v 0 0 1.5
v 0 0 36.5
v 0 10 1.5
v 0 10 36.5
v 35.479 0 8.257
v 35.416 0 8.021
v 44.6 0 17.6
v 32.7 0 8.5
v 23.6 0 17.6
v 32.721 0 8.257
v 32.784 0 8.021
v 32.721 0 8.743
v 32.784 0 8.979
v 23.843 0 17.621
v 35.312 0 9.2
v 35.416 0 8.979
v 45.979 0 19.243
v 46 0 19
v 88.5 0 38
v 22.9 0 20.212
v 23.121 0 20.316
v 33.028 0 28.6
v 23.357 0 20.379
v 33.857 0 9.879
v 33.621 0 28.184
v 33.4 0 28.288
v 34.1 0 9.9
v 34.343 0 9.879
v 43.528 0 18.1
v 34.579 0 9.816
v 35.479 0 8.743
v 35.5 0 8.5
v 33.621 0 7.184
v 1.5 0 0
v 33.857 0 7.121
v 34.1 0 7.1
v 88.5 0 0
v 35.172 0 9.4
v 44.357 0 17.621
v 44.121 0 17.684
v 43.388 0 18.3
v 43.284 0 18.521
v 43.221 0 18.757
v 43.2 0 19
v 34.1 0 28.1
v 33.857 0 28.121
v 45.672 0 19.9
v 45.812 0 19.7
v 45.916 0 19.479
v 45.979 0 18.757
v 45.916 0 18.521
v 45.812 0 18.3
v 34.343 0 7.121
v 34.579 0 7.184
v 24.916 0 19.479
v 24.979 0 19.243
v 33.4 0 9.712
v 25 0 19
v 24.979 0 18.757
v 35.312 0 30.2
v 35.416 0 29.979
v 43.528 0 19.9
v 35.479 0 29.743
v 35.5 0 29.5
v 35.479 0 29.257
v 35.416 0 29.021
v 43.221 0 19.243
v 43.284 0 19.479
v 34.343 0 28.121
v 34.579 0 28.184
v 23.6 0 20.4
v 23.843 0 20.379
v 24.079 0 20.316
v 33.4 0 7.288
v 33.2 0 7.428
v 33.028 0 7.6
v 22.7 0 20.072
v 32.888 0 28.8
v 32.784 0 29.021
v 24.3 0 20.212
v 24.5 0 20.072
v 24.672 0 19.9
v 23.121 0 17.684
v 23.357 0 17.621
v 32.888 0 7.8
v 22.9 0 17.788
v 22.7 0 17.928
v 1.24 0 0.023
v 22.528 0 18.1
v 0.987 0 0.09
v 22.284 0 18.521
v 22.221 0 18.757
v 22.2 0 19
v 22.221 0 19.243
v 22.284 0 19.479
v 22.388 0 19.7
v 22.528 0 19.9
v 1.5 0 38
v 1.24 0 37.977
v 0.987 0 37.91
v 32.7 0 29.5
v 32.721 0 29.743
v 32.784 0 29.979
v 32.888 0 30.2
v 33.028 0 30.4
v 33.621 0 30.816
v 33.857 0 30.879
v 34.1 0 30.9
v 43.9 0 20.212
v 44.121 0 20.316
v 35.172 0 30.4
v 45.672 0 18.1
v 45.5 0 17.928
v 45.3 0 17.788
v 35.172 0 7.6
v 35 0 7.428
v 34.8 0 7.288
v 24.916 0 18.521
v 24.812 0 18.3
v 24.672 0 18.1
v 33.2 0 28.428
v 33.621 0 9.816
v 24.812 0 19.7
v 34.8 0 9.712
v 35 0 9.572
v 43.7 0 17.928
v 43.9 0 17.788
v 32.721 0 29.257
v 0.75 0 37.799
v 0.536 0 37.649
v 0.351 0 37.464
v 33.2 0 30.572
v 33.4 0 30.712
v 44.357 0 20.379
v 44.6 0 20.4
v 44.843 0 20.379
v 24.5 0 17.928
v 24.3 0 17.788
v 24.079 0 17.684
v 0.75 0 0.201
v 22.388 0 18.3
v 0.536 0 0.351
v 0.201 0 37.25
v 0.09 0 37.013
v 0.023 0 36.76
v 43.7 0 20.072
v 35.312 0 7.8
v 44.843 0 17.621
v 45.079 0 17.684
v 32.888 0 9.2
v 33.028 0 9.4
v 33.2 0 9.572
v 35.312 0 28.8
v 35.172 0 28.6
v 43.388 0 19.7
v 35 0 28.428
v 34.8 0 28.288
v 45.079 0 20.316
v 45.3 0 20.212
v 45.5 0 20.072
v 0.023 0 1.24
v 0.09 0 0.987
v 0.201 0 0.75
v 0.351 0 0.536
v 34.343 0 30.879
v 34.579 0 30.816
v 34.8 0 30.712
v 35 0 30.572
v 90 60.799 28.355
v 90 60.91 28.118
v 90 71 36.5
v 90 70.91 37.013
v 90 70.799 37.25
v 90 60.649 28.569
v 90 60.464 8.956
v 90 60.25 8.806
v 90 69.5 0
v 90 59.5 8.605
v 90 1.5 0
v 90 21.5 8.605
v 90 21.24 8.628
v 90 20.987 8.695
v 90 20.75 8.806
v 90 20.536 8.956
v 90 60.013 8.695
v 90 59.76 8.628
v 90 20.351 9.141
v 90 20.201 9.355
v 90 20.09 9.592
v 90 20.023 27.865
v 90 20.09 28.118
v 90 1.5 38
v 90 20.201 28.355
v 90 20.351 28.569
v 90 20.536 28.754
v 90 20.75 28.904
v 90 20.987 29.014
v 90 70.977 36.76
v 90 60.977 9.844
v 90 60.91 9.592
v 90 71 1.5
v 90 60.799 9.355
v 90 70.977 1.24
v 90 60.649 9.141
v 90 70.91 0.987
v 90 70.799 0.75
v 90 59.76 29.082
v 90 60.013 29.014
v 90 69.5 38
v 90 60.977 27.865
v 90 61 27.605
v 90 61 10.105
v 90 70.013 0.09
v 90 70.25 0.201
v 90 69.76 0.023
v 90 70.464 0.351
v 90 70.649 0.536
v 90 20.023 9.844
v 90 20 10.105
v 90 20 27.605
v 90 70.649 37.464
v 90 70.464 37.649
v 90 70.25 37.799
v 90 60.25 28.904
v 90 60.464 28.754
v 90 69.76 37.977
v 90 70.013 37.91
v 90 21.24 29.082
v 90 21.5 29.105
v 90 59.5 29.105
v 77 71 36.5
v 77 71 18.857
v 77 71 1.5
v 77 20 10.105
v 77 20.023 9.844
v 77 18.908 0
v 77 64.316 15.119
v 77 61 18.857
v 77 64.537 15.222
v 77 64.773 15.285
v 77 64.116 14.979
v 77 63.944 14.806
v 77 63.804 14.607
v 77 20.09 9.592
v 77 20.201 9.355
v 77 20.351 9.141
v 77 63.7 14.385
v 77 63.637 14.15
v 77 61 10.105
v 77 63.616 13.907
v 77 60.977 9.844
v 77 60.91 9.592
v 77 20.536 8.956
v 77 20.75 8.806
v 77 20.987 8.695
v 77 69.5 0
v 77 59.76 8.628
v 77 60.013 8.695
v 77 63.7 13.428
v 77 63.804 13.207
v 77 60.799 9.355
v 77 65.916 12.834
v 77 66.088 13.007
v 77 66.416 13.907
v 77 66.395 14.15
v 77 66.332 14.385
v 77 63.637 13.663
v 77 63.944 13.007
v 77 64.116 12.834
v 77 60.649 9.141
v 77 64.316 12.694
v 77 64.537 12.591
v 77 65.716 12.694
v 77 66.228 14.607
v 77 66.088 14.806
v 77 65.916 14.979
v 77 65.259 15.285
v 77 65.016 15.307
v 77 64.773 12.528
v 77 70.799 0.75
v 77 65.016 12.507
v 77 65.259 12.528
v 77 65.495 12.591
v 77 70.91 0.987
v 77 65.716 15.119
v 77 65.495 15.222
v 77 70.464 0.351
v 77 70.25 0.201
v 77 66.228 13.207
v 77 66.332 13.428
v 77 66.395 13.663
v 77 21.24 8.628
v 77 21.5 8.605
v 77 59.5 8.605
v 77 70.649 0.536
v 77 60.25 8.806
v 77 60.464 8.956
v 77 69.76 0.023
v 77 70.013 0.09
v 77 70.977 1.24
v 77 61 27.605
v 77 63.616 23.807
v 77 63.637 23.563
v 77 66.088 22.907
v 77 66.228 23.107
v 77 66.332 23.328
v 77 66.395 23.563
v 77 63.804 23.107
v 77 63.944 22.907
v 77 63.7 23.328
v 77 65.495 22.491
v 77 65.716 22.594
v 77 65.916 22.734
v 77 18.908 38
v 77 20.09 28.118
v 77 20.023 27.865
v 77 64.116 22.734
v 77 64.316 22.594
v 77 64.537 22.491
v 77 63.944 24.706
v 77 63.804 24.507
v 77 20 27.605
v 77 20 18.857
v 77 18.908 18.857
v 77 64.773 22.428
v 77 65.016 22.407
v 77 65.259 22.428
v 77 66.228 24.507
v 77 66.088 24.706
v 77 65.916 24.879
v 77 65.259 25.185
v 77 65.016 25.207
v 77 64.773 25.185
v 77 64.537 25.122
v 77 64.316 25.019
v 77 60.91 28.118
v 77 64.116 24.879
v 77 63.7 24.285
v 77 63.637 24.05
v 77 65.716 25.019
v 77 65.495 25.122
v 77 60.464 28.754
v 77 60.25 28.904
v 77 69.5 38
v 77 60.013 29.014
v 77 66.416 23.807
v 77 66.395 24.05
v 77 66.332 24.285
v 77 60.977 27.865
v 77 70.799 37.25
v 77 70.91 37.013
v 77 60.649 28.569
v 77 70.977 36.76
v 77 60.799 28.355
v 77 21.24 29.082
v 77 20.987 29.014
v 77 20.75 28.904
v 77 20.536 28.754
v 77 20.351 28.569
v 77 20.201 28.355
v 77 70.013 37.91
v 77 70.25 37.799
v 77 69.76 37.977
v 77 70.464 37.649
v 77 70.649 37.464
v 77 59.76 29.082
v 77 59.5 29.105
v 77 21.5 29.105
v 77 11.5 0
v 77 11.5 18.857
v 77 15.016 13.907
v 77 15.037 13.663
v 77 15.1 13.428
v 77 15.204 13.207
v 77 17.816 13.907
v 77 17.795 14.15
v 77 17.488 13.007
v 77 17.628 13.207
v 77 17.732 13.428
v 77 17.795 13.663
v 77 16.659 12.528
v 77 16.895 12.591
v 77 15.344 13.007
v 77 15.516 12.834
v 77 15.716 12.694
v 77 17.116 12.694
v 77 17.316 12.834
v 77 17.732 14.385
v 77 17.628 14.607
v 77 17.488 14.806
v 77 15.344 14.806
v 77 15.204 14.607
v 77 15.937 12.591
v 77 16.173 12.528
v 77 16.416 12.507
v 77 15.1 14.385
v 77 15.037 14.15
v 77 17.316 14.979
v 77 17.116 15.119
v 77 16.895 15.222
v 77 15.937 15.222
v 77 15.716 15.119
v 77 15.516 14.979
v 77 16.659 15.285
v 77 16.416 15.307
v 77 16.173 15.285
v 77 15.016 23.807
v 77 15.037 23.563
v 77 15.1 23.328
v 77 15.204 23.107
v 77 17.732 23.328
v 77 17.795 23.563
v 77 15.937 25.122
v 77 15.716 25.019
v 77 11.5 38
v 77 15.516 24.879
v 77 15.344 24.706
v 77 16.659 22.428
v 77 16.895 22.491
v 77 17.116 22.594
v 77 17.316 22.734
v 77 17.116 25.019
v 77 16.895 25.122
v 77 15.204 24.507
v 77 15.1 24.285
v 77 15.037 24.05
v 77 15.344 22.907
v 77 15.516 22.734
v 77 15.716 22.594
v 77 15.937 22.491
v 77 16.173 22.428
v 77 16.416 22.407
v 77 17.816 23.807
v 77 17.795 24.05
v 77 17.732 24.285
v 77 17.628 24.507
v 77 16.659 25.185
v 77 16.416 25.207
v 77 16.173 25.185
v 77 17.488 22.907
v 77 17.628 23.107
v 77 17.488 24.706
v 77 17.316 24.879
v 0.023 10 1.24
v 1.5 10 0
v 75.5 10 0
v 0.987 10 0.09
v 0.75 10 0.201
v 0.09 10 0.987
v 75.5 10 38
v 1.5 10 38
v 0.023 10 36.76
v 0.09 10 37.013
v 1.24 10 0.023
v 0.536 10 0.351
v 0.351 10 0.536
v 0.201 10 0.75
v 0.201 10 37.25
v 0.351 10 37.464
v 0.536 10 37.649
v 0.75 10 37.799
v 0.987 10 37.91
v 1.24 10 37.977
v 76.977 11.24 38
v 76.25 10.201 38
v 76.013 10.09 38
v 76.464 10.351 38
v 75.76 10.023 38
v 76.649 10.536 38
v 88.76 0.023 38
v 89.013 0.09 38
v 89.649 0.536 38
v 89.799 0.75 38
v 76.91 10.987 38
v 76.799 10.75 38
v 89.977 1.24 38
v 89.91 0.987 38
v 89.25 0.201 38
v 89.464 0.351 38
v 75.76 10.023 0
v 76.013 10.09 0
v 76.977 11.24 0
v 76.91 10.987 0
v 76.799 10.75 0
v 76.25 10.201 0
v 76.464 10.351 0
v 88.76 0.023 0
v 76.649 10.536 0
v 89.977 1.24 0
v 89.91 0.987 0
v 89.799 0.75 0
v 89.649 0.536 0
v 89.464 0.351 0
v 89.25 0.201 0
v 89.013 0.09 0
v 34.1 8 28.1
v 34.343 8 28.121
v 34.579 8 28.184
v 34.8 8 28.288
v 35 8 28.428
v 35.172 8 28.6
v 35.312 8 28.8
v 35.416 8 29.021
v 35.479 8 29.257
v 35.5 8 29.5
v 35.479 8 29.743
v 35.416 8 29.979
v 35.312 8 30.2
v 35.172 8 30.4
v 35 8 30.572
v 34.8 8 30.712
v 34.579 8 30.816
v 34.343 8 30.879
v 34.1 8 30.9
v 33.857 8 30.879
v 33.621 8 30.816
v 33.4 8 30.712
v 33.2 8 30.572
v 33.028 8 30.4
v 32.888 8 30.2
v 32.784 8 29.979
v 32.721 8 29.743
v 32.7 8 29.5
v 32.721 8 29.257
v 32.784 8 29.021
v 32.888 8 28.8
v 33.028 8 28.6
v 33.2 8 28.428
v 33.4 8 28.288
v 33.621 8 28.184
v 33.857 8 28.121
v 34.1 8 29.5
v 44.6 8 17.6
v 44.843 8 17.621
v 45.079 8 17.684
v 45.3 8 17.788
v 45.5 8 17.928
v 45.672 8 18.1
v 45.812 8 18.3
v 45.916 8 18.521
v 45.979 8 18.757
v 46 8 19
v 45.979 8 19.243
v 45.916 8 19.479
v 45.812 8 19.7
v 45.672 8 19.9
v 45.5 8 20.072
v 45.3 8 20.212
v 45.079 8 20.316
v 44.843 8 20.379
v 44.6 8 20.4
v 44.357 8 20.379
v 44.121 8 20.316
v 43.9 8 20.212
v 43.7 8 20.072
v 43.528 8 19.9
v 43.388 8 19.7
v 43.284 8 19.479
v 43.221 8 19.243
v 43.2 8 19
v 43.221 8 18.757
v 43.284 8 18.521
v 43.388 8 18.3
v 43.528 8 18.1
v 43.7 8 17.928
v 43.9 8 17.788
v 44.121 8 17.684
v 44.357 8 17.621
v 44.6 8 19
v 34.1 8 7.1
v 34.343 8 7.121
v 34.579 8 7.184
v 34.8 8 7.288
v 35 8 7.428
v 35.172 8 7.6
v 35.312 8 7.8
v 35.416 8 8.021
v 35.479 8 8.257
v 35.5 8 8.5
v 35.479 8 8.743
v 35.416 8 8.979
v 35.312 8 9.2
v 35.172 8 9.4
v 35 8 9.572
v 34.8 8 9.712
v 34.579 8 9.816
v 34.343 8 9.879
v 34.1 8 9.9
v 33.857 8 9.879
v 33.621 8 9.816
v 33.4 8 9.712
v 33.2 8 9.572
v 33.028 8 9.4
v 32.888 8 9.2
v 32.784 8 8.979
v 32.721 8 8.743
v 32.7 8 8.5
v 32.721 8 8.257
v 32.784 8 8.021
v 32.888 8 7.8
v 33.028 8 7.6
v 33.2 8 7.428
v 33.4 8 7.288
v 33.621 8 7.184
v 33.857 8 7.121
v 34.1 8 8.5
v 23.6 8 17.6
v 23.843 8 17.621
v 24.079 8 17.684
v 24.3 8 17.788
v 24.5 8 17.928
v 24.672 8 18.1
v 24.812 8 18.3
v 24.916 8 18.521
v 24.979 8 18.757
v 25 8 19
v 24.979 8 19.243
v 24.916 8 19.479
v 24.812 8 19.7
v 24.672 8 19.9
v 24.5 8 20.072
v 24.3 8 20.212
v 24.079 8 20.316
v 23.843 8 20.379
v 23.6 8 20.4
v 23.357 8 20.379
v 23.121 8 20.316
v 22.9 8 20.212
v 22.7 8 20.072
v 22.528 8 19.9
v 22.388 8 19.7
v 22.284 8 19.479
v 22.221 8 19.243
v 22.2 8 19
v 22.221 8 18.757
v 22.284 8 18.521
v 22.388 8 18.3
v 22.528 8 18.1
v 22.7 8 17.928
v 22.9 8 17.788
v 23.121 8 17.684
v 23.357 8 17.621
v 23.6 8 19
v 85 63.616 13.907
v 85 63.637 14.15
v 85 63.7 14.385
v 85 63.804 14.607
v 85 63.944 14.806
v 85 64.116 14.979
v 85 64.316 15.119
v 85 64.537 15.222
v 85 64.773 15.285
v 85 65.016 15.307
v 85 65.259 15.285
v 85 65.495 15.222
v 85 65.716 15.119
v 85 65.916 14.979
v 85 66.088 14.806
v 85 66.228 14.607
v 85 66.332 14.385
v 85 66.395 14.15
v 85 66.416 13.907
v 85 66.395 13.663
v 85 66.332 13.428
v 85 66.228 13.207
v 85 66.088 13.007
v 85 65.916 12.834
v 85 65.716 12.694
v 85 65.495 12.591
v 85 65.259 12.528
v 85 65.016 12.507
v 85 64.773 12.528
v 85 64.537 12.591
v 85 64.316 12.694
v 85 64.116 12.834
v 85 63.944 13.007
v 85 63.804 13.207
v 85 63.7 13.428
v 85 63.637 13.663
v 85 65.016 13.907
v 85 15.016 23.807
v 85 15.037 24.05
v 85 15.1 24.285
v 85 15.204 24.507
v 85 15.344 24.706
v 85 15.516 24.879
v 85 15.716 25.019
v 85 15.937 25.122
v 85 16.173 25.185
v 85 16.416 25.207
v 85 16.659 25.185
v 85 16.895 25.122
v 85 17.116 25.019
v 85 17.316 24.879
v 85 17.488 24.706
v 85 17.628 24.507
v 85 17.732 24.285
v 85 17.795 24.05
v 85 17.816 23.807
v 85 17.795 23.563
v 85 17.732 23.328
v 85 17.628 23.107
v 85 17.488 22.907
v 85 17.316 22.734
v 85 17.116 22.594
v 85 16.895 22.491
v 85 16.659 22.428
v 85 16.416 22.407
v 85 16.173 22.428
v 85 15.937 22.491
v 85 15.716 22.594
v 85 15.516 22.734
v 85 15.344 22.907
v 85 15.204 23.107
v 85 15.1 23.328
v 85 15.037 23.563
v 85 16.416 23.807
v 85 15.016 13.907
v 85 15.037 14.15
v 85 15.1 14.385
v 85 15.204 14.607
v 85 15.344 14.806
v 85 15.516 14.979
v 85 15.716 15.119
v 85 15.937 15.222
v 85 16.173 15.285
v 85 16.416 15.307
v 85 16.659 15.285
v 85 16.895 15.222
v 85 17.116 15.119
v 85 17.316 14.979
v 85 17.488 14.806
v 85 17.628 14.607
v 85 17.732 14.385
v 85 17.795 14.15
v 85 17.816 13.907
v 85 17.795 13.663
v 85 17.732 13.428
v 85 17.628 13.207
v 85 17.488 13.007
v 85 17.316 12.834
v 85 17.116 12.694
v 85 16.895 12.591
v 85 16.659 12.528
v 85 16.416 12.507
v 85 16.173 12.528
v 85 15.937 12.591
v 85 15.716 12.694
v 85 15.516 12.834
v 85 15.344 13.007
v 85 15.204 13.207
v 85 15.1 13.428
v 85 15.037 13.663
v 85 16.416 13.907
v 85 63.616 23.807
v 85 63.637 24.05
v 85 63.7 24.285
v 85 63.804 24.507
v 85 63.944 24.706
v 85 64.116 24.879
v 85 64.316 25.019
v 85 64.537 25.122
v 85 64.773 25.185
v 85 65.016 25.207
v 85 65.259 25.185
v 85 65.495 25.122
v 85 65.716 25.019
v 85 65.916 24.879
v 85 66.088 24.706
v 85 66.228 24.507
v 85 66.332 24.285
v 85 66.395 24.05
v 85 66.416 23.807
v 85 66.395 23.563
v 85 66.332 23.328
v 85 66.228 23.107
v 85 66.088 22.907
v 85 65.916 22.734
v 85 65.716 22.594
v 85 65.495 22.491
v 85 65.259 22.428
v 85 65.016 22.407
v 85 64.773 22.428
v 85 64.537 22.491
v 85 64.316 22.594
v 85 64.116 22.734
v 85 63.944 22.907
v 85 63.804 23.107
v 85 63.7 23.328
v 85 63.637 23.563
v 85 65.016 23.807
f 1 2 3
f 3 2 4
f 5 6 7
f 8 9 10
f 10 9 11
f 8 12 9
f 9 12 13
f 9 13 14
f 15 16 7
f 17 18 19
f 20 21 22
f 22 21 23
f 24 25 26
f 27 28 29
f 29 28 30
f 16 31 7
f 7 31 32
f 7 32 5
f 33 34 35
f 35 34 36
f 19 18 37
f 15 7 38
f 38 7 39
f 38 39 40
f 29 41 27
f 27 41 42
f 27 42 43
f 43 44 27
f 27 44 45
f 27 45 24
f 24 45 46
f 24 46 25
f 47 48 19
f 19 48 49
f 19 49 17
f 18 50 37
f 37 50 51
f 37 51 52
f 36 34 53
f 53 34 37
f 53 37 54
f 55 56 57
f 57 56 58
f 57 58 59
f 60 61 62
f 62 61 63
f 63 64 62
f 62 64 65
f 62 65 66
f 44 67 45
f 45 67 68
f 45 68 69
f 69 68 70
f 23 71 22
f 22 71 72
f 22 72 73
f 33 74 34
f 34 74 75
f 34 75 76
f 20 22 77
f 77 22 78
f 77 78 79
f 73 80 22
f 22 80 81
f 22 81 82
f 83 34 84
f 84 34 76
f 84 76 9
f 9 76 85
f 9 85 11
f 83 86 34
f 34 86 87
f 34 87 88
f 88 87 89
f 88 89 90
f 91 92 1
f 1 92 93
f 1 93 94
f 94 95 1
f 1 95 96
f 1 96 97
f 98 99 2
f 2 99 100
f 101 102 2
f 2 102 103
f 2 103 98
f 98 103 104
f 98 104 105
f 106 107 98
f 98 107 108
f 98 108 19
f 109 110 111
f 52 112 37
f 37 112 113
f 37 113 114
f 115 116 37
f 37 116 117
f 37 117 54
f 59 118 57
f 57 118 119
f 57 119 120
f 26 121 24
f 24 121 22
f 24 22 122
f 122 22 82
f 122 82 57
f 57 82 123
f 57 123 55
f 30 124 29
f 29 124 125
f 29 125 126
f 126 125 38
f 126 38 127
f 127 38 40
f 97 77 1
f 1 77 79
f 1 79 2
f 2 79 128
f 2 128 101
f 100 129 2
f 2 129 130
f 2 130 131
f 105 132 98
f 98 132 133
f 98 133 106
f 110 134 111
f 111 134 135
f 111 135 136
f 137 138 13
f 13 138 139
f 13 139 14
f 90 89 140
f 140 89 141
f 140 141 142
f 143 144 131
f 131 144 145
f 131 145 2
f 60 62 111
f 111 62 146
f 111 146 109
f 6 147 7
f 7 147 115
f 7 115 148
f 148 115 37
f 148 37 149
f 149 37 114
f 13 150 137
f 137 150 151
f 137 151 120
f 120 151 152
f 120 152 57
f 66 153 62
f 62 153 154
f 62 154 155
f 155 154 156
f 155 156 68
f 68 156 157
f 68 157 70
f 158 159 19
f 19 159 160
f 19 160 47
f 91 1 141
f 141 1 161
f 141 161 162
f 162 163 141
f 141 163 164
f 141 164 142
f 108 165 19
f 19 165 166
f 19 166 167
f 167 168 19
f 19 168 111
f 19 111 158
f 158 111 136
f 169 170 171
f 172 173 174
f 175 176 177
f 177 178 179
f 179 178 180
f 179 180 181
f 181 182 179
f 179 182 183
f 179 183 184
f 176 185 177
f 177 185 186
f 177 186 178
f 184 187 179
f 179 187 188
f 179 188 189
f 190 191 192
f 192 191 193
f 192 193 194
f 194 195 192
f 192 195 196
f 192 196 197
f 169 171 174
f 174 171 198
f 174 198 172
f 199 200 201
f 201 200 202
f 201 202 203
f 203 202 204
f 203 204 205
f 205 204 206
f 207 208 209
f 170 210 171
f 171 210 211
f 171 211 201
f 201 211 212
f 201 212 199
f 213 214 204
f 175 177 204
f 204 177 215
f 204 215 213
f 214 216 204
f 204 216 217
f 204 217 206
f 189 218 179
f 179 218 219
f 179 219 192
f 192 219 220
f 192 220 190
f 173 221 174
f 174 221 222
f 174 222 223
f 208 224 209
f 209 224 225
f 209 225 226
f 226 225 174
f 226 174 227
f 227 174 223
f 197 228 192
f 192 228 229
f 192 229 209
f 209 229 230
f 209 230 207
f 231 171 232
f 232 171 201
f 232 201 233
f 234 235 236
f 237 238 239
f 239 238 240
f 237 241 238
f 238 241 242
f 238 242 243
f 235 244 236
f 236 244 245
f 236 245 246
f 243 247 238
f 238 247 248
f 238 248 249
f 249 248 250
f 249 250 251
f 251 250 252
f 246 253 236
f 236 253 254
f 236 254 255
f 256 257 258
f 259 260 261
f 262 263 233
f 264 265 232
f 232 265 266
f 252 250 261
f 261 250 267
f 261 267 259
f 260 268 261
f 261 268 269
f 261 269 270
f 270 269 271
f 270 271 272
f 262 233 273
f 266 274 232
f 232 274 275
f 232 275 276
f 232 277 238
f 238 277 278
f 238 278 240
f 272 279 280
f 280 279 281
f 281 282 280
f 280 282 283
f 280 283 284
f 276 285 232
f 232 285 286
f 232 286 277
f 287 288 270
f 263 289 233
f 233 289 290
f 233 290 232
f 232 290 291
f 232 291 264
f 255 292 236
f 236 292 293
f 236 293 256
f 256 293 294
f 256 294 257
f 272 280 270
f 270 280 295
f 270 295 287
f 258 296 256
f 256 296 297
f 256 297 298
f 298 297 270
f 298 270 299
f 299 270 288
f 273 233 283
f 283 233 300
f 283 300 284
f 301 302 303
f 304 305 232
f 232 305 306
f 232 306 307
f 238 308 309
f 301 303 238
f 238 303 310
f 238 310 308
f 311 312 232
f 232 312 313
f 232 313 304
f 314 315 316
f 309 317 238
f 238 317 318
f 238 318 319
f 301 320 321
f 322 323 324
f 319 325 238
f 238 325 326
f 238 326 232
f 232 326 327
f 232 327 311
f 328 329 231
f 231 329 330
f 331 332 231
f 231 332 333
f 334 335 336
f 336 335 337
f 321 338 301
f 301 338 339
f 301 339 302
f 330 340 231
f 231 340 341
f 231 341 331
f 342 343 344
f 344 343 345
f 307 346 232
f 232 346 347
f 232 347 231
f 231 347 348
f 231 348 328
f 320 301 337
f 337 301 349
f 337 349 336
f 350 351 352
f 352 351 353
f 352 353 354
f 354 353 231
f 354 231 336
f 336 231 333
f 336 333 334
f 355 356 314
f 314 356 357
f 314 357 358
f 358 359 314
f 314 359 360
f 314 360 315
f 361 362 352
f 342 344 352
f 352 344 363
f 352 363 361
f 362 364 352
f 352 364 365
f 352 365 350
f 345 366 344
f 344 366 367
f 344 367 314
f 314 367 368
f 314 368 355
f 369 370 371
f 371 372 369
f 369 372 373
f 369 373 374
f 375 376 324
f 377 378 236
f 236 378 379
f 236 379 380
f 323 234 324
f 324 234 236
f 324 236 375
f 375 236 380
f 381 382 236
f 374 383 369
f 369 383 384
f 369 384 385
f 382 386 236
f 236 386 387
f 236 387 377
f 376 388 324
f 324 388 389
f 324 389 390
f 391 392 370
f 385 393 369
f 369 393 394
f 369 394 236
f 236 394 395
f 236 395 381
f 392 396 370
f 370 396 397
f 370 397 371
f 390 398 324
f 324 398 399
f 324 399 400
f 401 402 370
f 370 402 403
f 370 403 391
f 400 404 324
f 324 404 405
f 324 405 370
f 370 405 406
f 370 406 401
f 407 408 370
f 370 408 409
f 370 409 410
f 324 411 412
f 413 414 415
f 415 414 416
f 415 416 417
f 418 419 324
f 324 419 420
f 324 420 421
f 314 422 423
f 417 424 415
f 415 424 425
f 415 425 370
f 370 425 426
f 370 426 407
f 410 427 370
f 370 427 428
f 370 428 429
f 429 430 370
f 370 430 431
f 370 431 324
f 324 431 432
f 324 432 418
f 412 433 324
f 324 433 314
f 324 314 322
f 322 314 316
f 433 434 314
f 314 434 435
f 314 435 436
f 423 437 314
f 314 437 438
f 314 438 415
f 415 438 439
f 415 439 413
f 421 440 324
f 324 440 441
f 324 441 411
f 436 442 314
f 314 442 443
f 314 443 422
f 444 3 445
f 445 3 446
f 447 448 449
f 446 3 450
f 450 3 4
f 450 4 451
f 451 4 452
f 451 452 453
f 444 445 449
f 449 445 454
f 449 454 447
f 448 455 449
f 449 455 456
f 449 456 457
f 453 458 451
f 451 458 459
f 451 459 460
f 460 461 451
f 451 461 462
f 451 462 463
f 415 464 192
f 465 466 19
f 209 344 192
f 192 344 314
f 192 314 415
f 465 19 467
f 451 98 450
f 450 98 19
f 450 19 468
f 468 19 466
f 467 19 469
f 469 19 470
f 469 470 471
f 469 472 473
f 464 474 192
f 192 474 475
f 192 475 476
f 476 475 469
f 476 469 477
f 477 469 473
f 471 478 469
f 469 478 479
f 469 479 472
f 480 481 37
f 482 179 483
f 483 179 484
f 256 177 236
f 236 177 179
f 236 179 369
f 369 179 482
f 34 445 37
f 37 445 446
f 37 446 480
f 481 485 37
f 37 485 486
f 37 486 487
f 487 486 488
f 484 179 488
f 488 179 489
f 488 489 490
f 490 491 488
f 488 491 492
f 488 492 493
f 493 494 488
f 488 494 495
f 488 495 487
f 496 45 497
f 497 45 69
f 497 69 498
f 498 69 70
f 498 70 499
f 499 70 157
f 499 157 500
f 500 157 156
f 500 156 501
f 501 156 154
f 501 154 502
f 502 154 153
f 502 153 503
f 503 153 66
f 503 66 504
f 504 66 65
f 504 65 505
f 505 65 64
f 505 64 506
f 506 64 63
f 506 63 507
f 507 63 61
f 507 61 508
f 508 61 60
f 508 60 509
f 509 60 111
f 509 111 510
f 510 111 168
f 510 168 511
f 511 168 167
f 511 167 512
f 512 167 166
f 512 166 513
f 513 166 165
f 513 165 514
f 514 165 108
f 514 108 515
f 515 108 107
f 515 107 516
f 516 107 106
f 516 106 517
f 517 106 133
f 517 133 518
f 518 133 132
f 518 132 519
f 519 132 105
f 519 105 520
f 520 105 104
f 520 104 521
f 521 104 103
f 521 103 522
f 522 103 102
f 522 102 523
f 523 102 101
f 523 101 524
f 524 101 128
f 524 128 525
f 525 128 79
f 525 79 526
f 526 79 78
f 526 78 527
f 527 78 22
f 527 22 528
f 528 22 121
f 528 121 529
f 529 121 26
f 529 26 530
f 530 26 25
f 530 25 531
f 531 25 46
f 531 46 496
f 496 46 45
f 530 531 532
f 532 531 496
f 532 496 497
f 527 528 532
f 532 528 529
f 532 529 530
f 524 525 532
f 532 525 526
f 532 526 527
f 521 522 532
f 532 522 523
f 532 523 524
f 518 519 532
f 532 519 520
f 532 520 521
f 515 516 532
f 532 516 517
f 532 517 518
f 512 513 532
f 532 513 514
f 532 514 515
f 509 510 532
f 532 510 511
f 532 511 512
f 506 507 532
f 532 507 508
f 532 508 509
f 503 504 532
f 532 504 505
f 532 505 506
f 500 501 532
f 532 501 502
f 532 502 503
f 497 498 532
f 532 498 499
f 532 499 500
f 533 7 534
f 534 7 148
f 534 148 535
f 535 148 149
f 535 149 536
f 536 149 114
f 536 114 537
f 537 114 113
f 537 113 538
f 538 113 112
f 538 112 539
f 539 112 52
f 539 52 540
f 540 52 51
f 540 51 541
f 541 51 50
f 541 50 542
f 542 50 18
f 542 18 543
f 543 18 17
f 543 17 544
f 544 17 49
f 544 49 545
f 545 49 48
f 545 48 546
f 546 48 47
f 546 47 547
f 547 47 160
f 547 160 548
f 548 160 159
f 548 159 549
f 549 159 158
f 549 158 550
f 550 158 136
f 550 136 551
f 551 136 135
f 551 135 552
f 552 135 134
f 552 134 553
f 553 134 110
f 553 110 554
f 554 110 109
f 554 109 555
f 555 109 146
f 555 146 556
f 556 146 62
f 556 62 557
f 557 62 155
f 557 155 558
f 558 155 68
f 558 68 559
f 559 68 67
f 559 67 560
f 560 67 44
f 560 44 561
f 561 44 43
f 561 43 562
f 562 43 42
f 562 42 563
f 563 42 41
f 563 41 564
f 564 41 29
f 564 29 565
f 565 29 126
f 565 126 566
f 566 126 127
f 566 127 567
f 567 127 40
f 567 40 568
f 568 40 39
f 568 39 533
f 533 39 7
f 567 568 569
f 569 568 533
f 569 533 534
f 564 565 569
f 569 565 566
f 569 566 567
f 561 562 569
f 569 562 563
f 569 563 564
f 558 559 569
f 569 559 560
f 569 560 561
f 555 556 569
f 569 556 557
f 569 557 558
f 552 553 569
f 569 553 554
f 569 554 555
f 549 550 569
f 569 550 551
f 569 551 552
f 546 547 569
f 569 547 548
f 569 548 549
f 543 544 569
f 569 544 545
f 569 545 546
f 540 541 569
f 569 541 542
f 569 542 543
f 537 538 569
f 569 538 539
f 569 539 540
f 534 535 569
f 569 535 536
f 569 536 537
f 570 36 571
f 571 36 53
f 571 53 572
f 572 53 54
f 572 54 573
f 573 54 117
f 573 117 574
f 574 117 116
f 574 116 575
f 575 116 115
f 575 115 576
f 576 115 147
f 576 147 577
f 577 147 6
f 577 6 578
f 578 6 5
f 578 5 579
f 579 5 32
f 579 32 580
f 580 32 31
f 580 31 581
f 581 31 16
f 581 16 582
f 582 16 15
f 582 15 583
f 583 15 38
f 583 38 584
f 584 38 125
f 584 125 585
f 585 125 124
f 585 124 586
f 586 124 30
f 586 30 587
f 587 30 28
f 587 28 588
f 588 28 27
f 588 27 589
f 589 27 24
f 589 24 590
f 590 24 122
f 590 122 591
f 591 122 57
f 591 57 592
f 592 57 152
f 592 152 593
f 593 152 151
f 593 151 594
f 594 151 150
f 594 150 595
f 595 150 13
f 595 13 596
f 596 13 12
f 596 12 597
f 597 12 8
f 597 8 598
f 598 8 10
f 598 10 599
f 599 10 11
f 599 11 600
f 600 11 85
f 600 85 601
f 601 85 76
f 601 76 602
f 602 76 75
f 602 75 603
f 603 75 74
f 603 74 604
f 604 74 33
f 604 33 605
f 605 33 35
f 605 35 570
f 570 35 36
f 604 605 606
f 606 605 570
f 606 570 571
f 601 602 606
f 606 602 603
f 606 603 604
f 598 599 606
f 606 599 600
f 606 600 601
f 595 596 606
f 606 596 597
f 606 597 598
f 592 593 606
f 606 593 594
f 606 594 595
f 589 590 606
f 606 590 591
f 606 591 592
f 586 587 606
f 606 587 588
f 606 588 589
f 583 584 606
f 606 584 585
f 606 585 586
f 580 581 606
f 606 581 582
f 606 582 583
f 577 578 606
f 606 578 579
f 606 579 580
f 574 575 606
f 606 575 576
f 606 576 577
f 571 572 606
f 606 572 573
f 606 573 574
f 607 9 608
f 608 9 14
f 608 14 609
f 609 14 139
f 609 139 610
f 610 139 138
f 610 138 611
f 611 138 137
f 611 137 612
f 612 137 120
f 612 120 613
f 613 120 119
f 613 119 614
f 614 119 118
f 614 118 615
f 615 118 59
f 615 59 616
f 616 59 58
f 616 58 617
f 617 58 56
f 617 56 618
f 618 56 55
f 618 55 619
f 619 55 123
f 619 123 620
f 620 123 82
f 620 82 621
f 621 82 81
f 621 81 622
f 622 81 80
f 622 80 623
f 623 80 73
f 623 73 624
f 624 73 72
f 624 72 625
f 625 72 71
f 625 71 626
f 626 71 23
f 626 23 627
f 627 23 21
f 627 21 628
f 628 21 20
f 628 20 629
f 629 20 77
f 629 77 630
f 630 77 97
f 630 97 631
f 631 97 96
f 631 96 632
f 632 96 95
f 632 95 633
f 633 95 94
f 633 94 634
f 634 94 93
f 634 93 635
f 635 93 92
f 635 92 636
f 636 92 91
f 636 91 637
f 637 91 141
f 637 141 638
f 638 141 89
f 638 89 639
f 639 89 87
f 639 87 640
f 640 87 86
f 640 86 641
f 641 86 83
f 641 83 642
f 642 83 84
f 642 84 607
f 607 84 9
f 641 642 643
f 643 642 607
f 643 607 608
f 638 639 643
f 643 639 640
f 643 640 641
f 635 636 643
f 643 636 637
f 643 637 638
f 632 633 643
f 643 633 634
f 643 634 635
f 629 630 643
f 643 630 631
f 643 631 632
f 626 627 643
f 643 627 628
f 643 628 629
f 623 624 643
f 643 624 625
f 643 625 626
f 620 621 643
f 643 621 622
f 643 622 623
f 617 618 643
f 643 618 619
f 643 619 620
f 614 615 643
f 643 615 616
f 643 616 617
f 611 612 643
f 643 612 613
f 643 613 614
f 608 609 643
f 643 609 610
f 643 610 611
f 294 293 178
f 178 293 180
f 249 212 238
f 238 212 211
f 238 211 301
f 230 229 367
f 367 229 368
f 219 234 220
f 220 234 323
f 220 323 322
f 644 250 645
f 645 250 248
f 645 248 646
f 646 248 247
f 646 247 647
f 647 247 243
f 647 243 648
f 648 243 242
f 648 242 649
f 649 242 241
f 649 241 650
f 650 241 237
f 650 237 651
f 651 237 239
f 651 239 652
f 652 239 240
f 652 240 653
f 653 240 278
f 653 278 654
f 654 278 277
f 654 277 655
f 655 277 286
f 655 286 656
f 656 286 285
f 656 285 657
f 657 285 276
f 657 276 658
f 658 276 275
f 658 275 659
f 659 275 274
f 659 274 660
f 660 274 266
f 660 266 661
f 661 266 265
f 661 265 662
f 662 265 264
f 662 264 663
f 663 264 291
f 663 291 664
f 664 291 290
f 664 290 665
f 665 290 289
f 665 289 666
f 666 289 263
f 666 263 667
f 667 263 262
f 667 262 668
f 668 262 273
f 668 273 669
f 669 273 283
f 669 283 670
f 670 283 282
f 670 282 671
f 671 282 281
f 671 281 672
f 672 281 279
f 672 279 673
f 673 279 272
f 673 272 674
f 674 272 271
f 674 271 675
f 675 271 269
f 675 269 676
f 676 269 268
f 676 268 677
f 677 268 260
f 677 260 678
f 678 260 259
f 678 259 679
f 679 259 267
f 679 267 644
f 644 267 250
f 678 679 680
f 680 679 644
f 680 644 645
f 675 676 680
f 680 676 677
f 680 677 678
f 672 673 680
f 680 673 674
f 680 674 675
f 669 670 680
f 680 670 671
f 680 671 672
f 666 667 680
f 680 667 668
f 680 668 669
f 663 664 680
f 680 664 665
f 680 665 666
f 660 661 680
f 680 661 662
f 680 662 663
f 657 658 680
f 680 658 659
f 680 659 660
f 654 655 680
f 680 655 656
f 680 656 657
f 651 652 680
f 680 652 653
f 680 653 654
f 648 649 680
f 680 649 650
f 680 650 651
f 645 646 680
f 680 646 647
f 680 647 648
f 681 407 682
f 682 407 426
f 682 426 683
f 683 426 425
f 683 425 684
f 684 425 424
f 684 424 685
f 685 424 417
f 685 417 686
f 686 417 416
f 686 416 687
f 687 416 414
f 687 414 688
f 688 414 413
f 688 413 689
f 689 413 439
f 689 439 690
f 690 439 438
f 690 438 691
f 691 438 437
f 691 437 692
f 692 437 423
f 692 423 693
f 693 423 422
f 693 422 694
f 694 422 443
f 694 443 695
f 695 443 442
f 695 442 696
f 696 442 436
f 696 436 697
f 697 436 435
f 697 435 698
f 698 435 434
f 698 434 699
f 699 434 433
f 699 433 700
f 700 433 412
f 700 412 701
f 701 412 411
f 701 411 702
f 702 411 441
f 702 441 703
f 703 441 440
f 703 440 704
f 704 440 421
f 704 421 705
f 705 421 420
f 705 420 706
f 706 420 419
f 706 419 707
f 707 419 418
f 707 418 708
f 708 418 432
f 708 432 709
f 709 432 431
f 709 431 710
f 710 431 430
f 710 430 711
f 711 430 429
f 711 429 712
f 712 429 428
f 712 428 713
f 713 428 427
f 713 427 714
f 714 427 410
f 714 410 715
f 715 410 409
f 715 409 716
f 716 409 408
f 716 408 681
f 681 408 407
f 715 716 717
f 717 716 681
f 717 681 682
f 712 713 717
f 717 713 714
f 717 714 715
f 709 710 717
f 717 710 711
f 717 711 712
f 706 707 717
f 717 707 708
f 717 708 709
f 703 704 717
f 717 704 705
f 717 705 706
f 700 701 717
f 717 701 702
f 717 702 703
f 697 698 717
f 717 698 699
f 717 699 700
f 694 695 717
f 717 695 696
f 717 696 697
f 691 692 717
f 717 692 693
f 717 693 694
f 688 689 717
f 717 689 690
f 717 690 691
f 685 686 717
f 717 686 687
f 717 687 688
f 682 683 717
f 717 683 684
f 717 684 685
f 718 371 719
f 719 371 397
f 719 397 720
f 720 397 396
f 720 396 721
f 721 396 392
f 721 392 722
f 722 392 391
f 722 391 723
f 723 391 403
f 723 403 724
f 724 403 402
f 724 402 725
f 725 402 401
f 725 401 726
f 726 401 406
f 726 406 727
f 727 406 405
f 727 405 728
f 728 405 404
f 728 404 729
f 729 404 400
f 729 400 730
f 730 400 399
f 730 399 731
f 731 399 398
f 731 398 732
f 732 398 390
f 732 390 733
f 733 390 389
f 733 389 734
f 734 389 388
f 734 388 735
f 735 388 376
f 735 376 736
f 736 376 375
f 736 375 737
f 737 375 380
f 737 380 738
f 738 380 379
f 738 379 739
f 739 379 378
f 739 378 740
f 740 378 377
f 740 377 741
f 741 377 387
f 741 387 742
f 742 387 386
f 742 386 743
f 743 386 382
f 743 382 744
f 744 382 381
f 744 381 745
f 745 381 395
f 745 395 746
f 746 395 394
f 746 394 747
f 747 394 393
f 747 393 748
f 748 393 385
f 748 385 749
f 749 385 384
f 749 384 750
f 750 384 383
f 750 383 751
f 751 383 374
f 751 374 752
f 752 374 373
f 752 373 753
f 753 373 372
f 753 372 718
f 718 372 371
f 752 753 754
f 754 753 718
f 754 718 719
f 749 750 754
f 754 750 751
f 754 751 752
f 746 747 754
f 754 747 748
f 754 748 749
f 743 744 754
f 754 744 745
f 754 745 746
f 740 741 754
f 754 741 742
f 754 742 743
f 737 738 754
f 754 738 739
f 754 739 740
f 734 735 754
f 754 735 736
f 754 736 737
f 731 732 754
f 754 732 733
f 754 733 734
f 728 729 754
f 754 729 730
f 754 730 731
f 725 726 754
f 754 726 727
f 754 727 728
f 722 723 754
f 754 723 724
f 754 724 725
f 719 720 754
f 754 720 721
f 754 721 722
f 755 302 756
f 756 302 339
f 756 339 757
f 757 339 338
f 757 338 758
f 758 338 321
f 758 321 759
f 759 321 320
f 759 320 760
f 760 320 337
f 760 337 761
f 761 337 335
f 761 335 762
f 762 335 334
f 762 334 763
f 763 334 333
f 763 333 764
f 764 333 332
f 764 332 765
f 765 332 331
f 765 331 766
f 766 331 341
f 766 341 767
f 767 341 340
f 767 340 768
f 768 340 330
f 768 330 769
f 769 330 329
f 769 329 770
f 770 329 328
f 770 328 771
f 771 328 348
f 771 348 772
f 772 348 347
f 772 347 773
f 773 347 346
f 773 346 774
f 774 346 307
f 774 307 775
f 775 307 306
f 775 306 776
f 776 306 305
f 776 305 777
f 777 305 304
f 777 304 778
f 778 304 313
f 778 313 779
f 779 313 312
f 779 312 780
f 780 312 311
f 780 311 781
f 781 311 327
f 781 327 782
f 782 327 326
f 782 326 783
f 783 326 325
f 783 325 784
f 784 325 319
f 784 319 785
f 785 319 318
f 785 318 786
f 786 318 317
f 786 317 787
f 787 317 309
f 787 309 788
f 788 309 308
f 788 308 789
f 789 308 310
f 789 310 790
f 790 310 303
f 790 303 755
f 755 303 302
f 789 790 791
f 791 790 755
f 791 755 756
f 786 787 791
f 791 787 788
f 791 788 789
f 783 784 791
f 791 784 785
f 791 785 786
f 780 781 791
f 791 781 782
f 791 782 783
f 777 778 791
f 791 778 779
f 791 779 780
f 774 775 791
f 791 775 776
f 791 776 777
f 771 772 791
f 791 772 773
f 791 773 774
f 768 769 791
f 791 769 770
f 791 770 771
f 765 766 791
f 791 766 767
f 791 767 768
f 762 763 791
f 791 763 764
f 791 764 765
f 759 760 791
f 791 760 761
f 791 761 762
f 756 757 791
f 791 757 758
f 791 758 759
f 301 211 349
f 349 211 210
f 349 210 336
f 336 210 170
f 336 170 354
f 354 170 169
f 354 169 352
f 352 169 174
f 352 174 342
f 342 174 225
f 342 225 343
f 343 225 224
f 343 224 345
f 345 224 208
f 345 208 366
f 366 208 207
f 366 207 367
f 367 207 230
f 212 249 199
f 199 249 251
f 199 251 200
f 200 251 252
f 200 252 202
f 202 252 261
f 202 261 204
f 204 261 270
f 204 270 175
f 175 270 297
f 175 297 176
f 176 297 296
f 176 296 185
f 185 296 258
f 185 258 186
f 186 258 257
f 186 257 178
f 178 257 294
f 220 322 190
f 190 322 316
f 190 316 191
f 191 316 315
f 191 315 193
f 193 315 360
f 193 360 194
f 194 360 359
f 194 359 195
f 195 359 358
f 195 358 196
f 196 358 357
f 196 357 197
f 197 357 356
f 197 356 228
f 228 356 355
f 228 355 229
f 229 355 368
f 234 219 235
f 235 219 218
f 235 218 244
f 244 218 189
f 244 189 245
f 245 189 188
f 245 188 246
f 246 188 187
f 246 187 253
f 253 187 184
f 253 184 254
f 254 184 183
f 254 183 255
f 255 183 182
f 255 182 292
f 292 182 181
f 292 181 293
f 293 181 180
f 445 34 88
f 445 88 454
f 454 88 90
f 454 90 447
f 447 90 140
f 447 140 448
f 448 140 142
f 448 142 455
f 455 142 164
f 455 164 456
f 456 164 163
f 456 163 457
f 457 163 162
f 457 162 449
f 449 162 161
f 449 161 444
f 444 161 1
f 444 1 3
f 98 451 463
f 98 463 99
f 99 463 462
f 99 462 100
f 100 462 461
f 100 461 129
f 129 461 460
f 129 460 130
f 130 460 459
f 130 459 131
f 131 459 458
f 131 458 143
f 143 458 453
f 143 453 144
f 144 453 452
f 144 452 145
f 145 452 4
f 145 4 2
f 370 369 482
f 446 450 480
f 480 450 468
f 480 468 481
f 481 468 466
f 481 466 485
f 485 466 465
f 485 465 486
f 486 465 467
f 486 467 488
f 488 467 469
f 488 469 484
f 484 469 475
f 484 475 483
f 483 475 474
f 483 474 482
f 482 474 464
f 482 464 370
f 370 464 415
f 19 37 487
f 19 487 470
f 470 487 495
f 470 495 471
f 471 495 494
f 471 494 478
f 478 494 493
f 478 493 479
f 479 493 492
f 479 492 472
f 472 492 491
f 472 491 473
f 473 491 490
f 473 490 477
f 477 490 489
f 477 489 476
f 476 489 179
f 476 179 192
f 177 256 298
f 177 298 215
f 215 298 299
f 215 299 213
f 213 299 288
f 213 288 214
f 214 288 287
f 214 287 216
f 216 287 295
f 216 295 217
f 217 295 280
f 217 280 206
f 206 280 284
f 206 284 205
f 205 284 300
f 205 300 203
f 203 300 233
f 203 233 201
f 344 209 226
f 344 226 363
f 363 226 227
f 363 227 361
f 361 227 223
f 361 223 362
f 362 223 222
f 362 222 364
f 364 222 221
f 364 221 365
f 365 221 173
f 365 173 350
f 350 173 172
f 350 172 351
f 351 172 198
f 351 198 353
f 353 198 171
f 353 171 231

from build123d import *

# Parameters (mm, degrees)
BOSS_EXTRUDE1_DEPTH = 38
SKETCH3_R           = 1.4
CUT_EXTRUDE2_DEPTH  = 8
SKETCH4_W           = 20.5
SKETCH4_H           = 41
CUT_EXTRUDE4_DEPTH  = 14
SKETCH7_R           = 1.4
CUT_EXTRUDE6_DEPTH  = 8
FILLET1_R           = 1.5
FILLET2_R           = 1.5


with BuildPart() as part:
    # Sketch1 → Boss-Extrude1 (new body)
    with BuildSketch(Plane.XY):
        Polygon((0, 0), (90, 0), (90, 71), (77, 71), (77, 10), (0, 10), align=None)
    extrude(amount=BOSS_EXTRUDE1_DEPTH)

    # Sketch3 → Cut-Extrude2 (cut)
    with BuildSketch(Plane.XZ):
        with Locations((23.6, 19)):
            Circle(SKETCH3_R)
        with Locations((34.1, 29.5)):
            Circle(SKETCH3_R)
        with Locations((44.6, 19)):
            Circle(SKETCH3_R)
        with Locations((34.1, 8.5)):
            Circle(SKETCH3_R)
    extrude(amount=-CUT_EXTRUDE2_DEPTH, mode=Mode.SUBTRACT)

    # Sketch4 → Cut-Extrude4 (cut, through all)
    with BuildSketch(Plane.ZY.offset(-77)):
        with Locations((18.854791971, 40.5)):
            Rectangle(SKETCH4_W, SKETCH4_H)
    extrude(amount=-CUT_EXTRUDE4_DEPTH, mode=Mode.SUBTRACT)

    # Sketch7 → Cut-Extrude6 (cut)
    with BuildSketch(Plane.ZY.offset(-77)):
        with Locations((13.906550577, 65.016024352)):
            Circle(SKETCH7_R)
        with Locations((23.806550577, 65.016024352)):
            Circle(SKETCH7_R)
        with Locations((13.906550577, 16.416024352)):
            Circle(SKETCH7_R)
        with Locations((23.806550577, 16.416024352)):
            Circle(SKETCH7_R)
    extrude(amount=-CUT_EXTRUDE6_DEPTH, mode=Mode.SUBTRACT)

    # Fillet1
    fillet1_edges = [part.edges().sort_by_distance(p)[0] for p in [
        (83.5, 20, 8.604791971),
        (83.5, 61, 8.604791971),
        (83.5, 61, 29.104791971),
        (83.5, 20, 29.104791971),
    ]]
    fillet(fillet1_edges, radius=FILLET1_R)

    # Fillet2
    fillet2_edges = [part.edges().sort_by_distance(p)[0] for p in [
        (77, 10, 19),
        (90, 0, 19),
        (83.5, 71, 38),
        (0, 5, 38),
        (83.5, 71, 0),
        (0, 5, 0),
    ]]
    fillet(fillet2_edges, radius=FILLET2_R)


solid = part.part
